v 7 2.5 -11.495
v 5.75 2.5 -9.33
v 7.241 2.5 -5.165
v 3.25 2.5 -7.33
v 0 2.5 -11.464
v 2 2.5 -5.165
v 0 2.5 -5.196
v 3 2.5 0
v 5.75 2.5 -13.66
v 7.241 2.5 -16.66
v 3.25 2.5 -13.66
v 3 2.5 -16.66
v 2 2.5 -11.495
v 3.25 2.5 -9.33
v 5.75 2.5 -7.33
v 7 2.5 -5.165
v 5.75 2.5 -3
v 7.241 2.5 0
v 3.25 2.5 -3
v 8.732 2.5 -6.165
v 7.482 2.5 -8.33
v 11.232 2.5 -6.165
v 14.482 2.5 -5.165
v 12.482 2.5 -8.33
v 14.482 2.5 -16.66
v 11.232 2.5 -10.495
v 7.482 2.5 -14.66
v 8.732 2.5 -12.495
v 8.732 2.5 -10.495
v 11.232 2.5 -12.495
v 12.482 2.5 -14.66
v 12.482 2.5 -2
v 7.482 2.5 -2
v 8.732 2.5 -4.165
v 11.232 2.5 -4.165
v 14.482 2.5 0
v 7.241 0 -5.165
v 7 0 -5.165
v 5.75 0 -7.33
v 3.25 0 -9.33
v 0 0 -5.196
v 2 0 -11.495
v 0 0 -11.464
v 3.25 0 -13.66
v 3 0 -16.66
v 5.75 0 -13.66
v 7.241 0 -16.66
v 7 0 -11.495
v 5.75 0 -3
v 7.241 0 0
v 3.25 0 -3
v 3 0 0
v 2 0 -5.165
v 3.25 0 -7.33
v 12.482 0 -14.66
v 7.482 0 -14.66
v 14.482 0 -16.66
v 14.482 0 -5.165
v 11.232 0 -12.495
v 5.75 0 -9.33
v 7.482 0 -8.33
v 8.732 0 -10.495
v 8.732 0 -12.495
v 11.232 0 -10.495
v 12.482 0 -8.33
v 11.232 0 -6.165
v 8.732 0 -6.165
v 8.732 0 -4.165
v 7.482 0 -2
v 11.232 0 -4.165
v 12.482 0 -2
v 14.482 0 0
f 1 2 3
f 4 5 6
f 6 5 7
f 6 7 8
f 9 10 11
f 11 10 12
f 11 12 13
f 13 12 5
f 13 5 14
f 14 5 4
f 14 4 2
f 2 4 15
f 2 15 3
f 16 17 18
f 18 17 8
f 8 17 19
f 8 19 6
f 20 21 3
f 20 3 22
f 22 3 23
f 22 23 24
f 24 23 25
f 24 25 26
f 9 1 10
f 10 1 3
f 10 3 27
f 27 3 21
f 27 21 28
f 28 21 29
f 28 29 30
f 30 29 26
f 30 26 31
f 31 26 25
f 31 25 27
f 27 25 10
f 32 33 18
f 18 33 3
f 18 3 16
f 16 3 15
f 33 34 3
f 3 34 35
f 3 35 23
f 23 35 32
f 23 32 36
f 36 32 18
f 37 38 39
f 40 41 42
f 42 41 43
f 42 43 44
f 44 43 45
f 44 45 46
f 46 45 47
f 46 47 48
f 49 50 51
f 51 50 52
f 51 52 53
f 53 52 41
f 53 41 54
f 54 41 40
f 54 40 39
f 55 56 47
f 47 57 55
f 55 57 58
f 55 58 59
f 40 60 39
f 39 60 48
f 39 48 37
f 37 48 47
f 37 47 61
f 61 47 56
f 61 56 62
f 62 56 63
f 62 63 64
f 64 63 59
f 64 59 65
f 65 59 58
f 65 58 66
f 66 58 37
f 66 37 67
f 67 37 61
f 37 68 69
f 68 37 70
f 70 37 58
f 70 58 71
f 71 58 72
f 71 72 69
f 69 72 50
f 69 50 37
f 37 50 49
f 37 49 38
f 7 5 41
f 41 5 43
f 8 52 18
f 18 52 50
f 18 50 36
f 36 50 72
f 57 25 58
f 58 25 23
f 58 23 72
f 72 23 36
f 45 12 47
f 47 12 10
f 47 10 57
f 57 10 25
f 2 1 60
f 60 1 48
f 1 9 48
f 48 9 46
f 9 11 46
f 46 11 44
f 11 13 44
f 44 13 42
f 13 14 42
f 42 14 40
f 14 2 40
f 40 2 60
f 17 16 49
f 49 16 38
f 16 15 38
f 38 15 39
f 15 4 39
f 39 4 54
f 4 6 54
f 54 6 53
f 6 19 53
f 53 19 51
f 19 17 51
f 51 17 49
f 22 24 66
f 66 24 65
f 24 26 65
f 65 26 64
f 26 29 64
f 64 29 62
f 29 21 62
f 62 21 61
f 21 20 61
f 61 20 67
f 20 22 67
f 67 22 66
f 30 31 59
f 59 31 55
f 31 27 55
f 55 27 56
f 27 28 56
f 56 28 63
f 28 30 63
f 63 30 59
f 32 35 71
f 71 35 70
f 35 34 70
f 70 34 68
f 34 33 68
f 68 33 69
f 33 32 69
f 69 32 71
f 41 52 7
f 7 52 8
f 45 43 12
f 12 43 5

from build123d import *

# Parameters (mm, degrees)
SKETCH1_W             = 14.482050808
SKETCH1_H             = 16.660254038
BOSS_EXTRUDE1_DEPTH   = 2.5
CHAMFER1_SIZE         = 3
CHAMFER1_SIZE2        = 5.196152423
CHAMFER1_PART_2_SIZE  = 3
CHAMFER1_PART_2_SIZE2 = 5.196152423


with BuildPart() as part:
    # Sketch1 → Boss-Extrude1 (new body)
    with BuildSketch(Plane(origin=(0, 0, 0), x_dir=(1, 0, 0), z_dir=(0, 1, 0))):
        with Locations((7.241025404, 8.330127019)):
            Rectangle(SKETCH1_W, SKETCH1_H)
        Polygon((7.482050808, 14.660254038), (12.482050808, 14.660254038), (11.232050808, 12.495190528), (8.732050808, 12.495190528), align=None, mode=Mode.SUBTRACT)
        Polygon((7, 11.495190528), (5.75, 13.660254038), (3.25, 13.660254038), (2, 11.495190528), (3.25, 9.330127019), (5.75, 9.330127019), align=None, mode=Mode.SUBTRACT)
        Polygon((7, 5.165063509), (5.75, 7.330127019), (3.25, 7.330127019), (2, 5.165063509), (3.25, 3), (5.75, 3), align=None, mode=Mode.SUBTRACT)
        Polygon((12.482050808, 8.330127019), (11.232050808, 10.495190528), (8.732050808, 10.495190528), (7.482050808, 8.330127019), (8.732050808, 6.165063509), (11.232050808, 6.165063509), align=None, mode=Mode.SUBTRACT)
        Polygon((7.482050808, 2), (12.482050808, 2), (11.232050808, 4.165063509), (8.732050808, 4.165063509), align=None, mode=Mode.SUBTRACT)
    extrude(amount=BOSS_EXTRUDE1_DEPTH)

    # Chamfer1
    chamfer1_edges = [part.edges().sort_by_distance(p)[0] for p in [
        (0, 1.25, -16.660254038),
    ]]
    chamfer1_side = [part.faces().sort_by_distance(p)[0] for p in [
        (7.241025404, 1.25, -16.660254038),
    ]]
    chamfer(chamfer1_edges, length=CHAMFER1_SIZE, length2=CHAMFER1_SIZE2, reference=chamfer1_side[0])

    # Chamfer1 part 2
    chamfer1_part_2_edges = [part.edges().sort_by_distance(p)[0] for p in [
        (0, 1.25, 0),
    ]]
    chamfer1_part_2_side = [part.faces().sort_by_distance(p)[0] for p in [
        (7.241025404, 1.25, 0),
    ]]
    chamfer(chamfer1_part_2_edges, length=CHAMFER1_PART_2_SIZE, length2=CHAMFER1_PART_2_SIZE2, reference=chamfer1_part_2_side[0])


solid = part.part
